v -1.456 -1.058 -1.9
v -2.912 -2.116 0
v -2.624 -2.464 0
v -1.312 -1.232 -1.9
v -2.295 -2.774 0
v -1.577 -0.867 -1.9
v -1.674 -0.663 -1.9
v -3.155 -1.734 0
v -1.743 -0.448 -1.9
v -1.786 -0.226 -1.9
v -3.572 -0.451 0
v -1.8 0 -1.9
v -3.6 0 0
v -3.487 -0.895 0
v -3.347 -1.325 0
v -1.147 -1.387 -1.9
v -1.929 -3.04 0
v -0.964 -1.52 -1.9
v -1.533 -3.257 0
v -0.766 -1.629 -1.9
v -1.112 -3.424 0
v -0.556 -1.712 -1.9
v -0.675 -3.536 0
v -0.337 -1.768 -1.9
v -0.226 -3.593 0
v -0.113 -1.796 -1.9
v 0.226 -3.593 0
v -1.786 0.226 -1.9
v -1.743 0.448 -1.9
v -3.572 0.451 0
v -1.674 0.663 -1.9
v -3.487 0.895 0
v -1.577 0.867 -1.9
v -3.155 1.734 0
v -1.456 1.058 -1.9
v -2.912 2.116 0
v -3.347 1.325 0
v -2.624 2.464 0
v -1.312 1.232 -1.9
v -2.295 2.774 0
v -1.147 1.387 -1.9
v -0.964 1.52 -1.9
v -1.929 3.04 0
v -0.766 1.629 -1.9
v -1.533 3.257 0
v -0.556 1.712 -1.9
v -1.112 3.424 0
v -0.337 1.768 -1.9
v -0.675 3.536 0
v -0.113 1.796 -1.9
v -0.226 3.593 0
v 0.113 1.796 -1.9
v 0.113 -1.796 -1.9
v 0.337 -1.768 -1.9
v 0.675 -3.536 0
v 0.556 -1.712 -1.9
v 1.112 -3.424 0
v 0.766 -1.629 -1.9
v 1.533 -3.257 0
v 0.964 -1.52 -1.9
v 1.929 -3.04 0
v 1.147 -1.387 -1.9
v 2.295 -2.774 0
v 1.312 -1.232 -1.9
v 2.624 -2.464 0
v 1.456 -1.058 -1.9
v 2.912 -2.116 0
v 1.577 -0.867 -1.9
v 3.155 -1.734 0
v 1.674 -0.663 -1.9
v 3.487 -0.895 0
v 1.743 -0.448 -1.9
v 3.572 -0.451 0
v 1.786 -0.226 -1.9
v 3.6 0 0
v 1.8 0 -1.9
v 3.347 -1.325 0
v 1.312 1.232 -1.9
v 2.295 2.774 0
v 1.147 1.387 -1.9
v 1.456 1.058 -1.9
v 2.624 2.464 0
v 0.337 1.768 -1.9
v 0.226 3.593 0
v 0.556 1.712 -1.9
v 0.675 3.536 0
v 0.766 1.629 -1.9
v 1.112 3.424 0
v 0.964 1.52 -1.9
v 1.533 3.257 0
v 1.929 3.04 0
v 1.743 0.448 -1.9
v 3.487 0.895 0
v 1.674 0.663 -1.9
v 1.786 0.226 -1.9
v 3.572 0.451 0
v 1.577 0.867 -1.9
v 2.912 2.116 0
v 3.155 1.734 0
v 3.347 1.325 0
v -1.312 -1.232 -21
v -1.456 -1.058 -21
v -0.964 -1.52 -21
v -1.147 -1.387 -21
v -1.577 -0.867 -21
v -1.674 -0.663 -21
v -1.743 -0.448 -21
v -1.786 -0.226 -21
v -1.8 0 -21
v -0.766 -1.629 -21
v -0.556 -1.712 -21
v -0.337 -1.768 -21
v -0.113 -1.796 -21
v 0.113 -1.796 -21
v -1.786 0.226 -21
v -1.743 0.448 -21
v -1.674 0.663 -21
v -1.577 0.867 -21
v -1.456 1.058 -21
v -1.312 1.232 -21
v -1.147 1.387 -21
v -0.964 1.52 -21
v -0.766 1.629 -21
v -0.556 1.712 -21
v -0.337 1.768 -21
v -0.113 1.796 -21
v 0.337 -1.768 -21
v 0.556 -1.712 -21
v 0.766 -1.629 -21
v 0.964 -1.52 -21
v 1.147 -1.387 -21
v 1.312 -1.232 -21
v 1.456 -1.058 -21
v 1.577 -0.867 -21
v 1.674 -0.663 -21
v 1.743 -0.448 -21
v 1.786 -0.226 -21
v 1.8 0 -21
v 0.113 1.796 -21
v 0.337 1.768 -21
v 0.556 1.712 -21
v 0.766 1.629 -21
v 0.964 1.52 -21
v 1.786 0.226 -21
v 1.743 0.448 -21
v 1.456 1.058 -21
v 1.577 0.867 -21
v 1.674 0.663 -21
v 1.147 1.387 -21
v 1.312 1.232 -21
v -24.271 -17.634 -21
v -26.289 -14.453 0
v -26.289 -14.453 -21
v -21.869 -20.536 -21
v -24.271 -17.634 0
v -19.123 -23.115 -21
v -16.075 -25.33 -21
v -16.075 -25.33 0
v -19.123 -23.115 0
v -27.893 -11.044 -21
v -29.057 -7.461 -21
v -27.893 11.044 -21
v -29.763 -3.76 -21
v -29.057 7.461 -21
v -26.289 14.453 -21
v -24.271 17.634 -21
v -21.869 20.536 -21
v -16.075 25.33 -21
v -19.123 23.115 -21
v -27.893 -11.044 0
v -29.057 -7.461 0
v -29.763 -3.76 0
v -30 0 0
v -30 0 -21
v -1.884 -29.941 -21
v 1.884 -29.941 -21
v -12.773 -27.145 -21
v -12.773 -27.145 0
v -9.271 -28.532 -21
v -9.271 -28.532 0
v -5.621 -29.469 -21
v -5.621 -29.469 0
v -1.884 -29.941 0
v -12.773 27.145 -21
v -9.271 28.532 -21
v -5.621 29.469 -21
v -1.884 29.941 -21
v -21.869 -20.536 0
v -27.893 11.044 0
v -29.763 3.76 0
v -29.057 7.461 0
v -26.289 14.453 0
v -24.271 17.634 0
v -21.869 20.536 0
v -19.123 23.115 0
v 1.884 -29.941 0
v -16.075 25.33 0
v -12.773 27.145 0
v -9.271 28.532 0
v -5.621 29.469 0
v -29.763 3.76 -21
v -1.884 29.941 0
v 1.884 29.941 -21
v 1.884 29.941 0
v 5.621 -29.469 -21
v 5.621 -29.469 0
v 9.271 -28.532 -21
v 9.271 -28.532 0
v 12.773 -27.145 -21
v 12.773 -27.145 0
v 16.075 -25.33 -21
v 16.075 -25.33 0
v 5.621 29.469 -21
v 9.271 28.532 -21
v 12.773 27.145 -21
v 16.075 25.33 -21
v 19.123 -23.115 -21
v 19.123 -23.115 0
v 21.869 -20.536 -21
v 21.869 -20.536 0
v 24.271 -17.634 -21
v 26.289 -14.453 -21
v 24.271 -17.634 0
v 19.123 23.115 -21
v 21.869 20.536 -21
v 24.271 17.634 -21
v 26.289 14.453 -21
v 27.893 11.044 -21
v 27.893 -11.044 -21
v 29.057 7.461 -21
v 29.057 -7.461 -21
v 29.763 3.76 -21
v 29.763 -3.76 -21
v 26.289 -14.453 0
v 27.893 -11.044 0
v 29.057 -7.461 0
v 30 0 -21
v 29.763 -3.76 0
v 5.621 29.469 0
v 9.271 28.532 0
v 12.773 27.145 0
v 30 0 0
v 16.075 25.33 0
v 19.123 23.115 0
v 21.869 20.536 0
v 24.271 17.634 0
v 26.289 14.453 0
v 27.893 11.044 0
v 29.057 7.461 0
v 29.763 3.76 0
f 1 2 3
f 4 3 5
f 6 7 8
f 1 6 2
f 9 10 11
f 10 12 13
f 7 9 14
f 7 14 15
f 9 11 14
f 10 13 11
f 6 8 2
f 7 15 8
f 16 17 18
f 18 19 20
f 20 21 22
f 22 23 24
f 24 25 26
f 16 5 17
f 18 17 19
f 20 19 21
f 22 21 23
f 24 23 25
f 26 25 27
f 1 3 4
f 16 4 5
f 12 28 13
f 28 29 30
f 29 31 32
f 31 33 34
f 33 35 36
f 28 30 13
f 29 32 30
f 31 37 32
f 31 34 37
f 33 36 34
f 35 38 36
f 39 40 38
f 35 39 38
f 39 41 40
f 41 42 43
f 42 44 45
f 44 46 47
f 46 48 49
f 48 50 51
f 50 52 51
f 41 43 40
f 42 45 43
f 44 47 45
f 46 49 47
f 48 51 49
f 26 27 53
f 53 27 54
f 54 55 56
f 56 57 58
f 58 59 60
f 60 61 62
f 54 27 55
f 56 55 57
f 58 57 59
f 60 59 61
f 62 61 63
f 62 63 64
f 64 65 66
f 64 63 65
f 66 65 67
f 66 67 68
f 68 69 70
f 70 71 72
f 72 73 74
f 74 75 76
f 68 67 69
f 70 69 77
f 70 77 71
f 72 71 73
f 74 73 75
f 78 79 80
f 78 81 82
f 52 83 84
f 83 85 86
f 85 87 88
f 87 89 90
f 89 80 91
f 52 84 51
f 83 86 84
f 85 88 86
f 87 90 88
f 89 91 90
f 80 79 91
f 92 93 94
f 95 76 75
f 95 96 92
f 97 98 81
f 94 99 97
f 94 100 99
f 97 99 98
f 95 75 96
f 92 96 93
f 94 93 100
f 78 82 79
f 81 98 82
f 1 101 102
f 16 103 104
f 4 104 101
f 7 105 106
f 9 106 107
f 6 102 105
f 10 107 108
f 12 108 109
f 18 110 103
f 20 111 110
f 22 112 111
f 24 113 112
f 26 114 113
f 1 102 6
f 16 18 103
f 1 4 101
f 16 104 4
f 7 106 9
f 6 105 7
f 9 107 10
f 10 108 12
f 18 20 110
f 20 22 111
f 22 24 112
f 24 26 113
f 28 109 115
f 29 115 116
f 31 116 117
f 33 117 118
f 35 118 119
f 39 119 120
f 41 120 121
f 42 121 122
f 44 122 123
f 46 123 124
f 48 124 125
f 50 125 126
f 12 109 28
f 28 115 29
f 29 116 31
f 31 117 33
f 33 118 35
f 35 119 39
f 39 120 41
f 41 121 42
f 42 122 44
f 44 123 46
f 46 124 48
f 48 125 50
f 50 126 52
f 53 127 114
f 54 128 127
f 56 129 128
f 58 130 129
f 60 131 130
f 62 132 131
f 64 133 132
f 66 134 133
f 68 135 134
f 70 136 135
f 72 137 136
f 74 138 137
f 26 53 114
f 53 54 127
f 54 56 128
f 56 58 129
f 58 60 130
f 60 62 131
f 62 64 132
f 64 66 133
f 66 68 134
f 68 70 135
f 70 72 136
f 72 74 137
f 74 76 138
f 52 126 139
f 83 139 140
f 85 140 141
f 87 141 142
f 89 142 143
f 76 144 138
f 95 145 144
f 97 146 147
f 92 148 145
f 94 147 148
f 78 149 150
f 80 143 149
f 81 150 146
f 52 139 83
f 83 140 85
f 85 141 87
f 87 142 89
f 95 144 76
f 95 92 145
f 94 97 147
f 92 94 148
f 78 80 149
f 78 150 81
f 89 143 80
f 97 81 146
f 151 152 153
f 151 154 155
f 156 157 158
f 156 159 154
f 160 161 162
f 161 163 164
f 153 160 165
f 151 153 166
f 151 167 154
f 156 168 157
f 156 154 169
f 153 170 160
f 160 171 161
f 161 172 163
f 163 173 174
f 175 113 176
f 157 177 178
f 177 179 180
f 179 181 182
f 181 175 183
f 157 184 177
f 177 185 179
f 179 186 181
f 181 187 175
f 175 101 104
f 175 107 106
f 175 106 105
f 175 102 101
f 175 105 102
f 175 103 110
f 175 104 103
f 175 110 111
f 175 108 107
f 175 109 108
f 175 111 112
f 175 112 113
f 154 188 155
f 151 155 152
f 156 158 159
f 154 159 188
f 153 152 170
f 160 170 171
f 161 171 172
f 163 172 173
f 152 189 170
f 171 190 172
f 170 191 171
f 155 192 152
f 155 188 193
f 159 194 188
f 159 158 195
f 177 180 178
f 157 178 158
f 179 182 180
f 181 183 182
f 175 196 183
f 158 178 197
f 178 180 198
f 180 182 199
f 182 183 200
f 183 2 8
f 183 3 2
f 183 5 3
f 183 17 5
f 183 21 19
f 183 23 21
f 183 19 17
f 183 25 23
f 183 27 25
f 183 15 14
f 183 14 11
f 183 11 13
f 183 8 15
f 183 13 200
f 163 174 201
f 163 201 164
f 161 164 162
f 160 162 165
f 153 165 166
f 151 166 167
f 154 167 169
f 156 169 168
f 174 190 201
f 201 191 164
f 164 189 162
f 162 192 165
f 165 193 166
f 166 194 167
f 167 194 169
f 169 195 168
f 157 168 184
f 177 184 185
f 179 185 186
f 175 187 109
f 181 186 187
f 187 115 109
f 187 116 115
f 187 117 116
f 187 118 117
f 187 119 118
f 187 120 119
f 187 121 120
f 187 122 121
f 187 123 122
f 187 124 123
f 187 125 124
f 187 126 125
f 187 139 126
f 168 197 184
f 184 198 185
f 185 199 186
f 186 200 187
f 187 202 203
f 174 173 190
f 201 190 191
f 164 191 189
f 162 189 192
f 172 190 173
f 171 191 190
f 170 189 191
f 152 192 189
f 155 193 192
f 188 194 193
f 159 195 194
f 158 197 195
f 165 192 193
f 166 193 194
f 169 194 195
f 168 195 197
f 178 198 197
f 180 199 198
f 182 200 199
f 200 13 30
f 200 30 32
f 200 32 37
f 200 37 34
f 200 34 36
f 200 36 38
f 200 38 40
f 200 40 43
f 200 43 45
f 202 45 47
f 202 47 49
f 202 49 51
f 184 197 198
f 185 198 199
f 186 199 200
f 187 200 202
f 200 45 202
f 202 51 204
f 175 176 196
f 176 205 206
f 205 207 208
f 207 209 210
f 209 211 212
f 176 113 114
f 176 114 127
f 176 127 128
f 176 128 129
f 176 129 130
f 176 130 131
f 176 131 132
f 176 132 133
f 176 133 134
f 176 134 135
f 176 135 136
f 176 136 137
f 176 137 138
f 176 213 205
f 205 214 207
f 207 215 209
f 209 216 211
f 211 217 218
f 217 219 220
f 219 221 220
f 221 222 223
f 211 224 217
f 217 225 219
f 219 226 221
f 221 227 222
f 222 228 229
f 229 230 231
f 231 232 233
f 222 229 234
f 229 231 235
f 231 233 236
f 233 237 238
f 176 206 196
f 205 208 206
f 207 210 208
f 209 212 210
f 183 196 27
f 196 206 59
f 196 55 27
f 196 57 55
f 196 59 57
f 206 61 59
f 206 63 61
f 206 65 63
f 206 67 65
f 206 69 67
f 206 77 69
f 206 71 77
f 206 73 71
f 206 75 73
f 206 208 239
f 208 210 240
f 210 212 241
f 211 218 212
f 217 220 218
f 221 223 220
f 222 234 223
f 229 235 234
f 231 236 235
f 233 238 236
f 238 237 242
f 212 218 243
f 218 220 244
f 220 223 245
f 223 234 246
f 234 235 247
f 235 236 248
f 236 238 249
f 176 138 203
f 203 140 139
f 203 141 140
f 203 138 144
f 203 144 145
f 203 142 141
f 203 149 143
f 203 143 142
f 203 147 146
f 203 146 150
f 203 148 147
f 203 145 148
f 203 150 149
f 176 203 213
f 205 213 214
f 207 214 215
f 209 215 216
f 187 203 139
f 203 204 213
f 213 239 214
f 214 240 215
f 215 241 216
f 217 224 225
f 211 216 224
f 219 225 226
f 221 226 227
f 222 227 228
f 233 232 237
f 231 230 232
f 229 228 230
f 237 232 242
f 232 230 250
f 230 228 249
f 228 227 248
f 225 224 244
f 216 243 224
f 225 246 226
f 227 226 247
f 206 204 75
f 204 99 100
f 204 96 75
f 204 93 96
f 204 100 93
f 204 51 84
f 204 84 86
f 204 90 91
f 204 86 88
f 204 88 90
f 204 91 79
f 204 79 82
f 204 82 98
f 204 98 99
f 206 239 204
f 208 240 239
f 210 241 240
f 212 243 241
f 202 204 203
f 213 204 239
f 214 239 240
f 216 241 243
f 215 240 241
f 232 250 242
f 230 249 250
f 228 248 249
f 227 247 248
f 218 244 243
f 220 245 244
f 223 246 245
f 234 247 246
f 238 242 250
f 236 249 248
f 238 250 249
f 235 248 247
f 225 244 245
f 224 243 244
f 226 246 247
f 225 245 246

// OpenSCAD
$fn = 50;

difference() {
	union() {
		translate(v = [0, 0, -21.0]) {
			cylinder(h = 21, r = 30.0);
		}
	}
	union() {
		translate(v = [0, 0, 0]) {
			rotate(a = [0, 0, 0]) {
				difference() {
					union() {
						translate(v = [0, 0, -24.0]) {
							cylinder(h = 24, r = 1.5);
						}
						translate(v = [0, 0, -1.9]) {
							cylinder(h = 1.9, r1 = 1.8, r2 = 3.6);
						}
						translate(v = [0, 0, -24.0]) {
							cylinder(h = 24, r = 1.8);
						}
						translate(v = [0, 0, -24.0]) {
							cylinder(h = 24, r = 1.5);
						}
					}
					union();
				}
			}
		}
	}
}
